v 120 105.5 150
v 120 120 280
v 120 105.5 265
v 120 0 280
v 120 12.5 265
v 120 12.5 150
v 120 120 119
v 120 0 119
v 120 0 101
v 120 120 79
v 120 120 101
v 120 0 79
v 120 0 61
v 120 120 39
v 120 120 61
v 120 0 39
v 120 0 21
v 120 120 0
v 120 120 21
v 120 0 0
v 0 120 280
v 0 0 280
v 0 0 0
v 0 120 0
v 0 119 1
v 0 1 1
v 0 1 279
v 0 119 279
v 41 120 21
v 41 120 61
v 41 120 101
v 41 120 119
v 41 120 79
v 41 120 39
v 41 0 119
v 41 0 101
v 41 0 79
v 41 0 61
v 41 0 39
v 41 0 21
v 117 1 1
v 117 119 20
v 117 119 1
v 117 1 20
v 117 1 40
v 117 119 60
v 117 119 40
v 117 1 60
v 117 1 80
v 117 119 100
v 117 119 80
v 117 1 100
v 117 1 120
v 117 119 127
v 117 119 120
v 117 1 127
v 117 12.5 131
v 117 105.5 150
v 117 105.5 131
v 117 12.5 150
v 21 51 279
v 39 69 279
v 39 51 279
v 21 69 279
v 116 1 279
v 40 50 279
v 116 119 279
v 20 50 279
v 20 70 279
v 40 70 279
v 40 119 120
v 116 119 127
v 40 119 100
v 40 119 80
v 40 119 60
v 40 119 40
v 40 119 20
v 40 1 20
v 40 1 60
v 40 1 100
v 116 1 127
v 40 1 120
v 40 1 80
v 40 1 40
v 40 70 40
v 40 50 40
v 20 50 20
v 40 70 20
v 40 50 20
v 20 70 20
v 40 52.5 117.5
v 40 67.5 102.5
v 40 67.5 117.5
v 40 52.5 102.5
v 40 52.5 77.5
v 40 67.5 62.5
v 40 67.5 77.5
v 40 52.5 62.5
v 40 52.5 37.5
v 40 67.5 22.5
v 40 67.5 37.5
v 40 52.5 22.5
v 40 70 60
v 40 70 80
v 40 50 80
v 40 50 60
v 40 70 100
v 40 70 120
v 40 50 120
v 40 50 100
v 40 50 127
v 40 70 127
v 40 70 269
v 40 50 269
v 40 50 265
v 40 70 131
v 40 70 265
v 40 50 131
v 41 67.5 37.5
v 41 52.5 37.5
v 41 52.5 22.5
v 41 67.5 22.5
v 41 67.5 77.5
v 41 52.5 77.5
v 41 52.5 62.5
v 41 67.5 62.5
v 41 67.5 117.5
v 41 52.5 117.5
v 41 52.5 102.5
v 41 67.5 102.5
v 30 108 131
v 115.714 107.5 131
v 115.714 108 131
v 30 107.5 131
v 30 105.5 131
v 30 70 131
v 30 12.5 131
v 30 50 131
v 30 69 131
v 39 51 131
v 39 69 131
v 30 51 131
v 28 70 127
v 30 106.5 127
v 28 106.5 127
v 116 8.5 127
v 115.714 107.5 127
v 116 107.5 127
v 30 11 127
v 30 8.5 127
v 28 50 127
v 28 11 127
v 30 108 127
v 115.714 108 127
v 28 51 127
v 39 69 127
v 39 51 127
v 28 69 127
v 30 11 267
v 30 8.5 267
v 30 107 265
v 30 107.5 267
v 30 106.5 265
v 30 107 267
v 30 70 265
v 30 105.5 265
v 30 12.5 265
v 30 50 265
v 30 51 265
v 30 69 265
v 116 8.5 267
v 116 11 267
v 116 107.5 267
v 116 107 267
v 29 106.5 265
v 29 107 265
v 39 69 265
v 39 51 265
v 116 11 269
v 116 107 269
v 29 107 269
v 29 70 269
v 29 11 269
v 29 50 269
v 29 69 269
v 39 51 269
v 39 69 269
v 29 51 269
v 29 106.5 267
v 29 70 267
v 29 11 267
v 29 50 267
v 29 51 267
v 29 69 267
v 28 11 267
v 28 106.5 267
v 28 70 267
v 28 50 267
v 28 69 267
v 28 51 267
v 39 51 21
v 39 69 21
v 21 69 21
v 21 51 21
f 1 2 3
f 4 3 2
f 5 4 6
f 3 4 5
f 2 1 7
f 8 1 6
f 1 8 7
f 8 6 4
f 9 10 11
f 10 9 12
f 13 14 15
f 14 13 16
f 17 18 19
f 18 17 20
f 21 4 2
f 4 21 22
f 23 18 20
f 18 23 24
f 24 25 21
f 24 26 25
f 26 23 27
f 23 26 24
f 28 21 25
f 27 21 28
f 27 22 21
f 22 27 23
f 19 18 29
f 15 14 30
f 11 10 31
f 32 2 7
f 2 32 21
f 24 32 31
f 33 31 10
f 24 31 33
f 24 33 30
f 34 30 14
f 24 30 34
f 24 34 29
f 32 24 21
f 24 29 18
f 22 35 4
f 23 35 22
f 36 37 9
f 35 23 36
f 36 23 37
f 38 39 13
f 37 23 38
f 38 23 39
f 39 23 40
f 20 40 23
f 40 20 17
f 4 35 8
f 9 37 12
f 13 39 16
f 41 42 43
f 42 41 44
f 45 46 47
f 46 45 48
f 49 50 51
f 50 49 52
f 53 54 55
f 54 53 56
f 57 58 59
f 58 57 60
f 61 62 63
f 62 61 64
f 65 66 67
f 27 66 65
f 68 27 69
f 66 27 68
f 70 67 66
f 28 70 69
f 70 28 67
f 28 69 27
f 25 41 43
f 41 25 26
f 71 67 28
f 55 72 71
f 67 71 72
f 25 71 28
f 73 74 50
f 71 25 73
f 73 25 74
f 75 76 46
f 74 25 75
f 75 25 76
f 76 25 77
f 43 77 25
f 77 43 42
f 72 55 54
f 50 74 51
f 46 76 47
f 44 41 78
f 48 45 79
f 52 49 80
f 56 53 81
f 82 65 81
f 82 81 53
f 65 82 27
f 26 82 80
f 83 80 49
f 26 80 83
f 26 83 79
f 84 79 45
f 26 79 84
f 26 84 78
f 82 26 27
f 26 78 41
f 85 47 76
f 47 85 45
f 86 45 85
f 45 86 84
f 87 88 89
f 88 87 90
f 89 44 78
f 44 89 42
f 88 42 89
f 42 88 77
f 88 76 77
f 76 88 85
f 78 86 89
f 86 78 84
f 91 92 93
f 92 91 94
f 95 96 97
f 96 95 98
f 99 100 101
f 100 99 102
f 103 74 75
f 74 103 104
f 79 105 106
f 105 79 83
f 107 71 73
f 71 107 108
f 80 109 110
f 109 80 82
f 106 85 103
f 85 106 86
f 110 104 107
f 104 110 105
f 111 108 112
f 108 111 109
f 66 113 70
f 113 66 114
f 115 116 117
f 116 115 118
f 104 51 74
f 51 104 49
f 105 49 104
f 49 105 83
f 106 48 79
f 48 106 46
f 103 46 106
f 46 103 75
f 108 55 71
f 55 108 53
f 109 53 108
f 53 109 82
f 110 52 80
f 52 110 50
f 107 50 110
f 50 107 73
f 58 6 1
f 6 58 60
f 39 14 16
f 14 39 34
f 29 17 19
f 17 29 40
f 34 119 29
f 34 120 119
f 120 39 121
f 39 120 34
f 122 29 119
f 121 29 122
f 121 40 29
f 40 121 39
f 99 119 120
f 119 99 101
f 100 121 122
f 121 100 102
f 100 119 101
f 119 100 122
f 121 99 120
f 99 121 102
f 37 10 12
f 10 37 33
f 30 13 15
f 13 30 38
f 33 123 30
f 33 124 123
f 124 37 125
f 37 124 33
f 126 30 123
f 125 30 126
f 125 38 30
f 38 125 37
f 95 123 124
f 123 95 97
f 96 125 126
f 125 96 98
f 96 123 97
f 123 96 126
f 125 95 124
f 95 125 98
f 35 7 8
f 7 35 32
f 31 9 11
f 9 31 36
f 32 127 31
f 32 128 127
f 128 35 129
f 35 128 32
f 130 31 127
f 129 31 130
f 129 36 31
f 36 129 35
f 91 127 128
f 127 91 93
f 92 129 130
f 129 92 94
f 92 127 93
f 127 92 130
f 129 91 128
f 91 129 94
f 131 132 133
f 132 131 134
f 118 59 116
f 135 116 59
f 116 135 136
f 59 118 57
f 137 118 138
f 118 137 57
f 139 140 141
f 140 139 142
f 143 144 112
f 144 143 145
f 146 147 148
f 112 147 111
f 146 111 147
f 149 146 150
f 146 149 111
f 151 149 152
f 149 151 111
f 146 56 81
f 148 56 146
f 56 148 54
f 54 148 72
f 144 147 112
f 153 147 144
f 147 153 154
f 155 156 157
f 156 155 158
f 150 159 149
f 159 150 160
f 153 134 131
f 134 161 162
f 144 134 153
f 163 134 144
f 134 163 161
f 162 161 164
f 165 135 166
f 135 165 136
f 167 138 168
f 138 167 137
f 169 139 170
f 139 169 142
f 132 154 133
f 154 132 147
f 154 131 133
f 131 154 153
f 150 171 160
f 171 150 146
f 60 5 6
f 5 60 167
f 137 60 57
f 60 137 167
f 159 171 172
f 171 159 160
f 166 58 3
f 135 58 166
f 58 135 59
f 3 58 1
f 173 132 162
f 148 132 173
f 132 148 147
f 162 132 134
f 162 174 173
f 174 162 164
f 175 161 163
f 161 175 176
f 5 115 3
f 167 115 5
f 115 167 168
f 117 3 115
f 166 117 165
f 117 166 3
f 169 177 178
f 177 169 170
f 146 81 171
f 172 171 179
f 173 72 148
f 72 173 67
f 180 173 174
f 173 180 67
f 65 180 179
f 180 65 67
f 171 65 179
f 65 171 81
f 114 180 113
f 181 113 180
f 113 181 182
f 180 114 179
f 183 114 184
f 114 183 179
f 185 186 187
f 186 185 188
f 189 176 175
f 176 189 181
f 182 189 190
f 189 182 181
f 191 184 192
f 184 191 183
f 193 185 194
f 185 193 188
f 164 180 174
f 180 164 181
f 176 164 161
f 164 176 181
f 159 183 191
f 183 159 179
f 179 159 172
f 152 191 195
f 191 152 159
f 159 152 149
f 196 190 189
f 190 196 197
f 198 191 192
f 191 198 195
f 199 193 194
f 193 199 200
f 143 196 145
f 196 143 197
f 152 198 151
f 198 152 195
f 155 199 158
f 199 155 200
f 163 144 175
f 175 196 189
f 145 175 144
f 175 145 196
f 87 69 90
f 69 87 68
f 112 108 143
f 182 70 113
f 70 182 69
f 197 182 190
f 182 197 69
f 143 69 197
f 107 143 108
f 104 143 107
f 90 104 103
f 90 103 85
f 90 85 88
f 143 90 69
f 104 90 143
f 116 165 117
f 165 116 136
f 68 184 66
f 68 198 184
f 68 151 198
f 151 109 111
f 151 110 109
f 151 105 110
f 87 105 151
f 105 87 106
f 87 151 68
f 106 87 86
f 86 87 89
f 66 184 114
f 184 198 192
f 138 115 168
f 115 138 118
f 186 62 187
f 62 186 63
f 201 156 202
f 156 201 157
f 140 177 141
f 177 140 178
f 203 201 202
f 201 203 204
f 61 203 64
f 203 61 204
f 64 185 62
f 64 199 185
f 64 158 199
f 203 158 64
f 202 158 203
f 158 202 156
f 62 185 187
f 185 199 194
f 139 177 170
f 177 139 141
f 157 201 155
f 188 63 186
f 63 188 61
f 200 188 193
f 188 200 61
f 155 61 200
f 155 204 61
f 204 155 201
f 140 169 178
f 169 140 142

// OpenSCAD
shellH = 280;
shellW = 120;


module shell(h, w) {
  difference() {
    color("yellow") cube([w, w, h]);
    color("yellow") translate([-1,1, 1]) cube([w-2,w-2, h-2]);
  }
}

module light(w, l, d) {
    difference() {
        color("red") cube([w, l, d]);
        translate([1, -1, 1]) cube([w, l + 2 , d -2]);
        translate([-10, (l / 2) - 7.5, (d / 2) - 7.5]) 
            cube([15, 15 , 15], center=false);
    }        
}

module lightHole(w, d) {
    cube([w, w + 2, d]);
}

module shellWithHoles(h, w, d) {
    offset = 0;
    holes = [offset + 20, offset + 60, offset + 100];
    difference() {
        shell(h, w);
        translate([ w / 3, -1, holes[0]]) lightHole(w, d);
        translate([ w / 3, -1, holes[1]]) lightHole(w, d);
        translate([ w / 3, -1, holes[2]]) lightHole(w, d);
        translate([ w / 3, 1, holes[2] + 50]) cube([w + 1, w - 2, h /2.38]);
        translate([ w - 3 , -1, holes[2] + 50]) cube([4, w + 2, h]);
    }
    translate([w / 3, 0, holes[0]]) light(w - (w / 3), w, d);
    translate([w / 3, 0, holes[1]]) light(w - (w / 3), w, d);
    translate([w / 3, 0, holes[2]]) light(w - (w / 3), w, d);
}

module tube(l) {
    difference() {
        cube([20, 20 , l]);
        translate([1, 1, 1]) cube([18, 18 , l - 2]);
    }
}
//light(shellH, she2llW, 40);
module housing(w, d, h) {
    padding = 30;
    
    translate([15, 12, 0]) cube([w - padding, d - padding+4, 4], center = false);    
    translate([15, 11.5, 0]) cube([w / 1.40, d - 23.5, 4], center = false);    
    translate([15, 12.5, 0]) rotate([90, 0, 0]) cube([w - 30, h+7, 4], center = false);
    translate([15, w - 12.5, 0]) rotate([90, 0, 0]) cube([w - 30, h+7, 2], center = false);
    translate([w - 15, 0, 0]) rotate([0, -90, 0]) cube([h+5, 12.5, 4], center = false);
    translate([w - 15, d-12.5, 0]) rotate([0, -90, 0]) cube([h+5, 12.5, 4], center = false);
    translate([14, 11.0, h+5]) cube([w / 1.35, d - 24, 4], center = false);    
    translate([w - 15, 0, h+5]) rotate([0, -90, 0]) cube([15, w, 4], center = false);

    translate([15, 11.0, 0]) rotate([0, -90, 0]) cube([h+7, d - padding+5.5, 2], center = false);    
}

shellWithHoles(shellH, shellW, 20);
translate([(shellW / 3) - 20, (shellW/2) - 10, 20]) tube(shellH - 20);
translate([15, 0, 127]) housing(shellW, shellW, 133);


//translate([100,12.5,125])%cube([10,95,135]);
